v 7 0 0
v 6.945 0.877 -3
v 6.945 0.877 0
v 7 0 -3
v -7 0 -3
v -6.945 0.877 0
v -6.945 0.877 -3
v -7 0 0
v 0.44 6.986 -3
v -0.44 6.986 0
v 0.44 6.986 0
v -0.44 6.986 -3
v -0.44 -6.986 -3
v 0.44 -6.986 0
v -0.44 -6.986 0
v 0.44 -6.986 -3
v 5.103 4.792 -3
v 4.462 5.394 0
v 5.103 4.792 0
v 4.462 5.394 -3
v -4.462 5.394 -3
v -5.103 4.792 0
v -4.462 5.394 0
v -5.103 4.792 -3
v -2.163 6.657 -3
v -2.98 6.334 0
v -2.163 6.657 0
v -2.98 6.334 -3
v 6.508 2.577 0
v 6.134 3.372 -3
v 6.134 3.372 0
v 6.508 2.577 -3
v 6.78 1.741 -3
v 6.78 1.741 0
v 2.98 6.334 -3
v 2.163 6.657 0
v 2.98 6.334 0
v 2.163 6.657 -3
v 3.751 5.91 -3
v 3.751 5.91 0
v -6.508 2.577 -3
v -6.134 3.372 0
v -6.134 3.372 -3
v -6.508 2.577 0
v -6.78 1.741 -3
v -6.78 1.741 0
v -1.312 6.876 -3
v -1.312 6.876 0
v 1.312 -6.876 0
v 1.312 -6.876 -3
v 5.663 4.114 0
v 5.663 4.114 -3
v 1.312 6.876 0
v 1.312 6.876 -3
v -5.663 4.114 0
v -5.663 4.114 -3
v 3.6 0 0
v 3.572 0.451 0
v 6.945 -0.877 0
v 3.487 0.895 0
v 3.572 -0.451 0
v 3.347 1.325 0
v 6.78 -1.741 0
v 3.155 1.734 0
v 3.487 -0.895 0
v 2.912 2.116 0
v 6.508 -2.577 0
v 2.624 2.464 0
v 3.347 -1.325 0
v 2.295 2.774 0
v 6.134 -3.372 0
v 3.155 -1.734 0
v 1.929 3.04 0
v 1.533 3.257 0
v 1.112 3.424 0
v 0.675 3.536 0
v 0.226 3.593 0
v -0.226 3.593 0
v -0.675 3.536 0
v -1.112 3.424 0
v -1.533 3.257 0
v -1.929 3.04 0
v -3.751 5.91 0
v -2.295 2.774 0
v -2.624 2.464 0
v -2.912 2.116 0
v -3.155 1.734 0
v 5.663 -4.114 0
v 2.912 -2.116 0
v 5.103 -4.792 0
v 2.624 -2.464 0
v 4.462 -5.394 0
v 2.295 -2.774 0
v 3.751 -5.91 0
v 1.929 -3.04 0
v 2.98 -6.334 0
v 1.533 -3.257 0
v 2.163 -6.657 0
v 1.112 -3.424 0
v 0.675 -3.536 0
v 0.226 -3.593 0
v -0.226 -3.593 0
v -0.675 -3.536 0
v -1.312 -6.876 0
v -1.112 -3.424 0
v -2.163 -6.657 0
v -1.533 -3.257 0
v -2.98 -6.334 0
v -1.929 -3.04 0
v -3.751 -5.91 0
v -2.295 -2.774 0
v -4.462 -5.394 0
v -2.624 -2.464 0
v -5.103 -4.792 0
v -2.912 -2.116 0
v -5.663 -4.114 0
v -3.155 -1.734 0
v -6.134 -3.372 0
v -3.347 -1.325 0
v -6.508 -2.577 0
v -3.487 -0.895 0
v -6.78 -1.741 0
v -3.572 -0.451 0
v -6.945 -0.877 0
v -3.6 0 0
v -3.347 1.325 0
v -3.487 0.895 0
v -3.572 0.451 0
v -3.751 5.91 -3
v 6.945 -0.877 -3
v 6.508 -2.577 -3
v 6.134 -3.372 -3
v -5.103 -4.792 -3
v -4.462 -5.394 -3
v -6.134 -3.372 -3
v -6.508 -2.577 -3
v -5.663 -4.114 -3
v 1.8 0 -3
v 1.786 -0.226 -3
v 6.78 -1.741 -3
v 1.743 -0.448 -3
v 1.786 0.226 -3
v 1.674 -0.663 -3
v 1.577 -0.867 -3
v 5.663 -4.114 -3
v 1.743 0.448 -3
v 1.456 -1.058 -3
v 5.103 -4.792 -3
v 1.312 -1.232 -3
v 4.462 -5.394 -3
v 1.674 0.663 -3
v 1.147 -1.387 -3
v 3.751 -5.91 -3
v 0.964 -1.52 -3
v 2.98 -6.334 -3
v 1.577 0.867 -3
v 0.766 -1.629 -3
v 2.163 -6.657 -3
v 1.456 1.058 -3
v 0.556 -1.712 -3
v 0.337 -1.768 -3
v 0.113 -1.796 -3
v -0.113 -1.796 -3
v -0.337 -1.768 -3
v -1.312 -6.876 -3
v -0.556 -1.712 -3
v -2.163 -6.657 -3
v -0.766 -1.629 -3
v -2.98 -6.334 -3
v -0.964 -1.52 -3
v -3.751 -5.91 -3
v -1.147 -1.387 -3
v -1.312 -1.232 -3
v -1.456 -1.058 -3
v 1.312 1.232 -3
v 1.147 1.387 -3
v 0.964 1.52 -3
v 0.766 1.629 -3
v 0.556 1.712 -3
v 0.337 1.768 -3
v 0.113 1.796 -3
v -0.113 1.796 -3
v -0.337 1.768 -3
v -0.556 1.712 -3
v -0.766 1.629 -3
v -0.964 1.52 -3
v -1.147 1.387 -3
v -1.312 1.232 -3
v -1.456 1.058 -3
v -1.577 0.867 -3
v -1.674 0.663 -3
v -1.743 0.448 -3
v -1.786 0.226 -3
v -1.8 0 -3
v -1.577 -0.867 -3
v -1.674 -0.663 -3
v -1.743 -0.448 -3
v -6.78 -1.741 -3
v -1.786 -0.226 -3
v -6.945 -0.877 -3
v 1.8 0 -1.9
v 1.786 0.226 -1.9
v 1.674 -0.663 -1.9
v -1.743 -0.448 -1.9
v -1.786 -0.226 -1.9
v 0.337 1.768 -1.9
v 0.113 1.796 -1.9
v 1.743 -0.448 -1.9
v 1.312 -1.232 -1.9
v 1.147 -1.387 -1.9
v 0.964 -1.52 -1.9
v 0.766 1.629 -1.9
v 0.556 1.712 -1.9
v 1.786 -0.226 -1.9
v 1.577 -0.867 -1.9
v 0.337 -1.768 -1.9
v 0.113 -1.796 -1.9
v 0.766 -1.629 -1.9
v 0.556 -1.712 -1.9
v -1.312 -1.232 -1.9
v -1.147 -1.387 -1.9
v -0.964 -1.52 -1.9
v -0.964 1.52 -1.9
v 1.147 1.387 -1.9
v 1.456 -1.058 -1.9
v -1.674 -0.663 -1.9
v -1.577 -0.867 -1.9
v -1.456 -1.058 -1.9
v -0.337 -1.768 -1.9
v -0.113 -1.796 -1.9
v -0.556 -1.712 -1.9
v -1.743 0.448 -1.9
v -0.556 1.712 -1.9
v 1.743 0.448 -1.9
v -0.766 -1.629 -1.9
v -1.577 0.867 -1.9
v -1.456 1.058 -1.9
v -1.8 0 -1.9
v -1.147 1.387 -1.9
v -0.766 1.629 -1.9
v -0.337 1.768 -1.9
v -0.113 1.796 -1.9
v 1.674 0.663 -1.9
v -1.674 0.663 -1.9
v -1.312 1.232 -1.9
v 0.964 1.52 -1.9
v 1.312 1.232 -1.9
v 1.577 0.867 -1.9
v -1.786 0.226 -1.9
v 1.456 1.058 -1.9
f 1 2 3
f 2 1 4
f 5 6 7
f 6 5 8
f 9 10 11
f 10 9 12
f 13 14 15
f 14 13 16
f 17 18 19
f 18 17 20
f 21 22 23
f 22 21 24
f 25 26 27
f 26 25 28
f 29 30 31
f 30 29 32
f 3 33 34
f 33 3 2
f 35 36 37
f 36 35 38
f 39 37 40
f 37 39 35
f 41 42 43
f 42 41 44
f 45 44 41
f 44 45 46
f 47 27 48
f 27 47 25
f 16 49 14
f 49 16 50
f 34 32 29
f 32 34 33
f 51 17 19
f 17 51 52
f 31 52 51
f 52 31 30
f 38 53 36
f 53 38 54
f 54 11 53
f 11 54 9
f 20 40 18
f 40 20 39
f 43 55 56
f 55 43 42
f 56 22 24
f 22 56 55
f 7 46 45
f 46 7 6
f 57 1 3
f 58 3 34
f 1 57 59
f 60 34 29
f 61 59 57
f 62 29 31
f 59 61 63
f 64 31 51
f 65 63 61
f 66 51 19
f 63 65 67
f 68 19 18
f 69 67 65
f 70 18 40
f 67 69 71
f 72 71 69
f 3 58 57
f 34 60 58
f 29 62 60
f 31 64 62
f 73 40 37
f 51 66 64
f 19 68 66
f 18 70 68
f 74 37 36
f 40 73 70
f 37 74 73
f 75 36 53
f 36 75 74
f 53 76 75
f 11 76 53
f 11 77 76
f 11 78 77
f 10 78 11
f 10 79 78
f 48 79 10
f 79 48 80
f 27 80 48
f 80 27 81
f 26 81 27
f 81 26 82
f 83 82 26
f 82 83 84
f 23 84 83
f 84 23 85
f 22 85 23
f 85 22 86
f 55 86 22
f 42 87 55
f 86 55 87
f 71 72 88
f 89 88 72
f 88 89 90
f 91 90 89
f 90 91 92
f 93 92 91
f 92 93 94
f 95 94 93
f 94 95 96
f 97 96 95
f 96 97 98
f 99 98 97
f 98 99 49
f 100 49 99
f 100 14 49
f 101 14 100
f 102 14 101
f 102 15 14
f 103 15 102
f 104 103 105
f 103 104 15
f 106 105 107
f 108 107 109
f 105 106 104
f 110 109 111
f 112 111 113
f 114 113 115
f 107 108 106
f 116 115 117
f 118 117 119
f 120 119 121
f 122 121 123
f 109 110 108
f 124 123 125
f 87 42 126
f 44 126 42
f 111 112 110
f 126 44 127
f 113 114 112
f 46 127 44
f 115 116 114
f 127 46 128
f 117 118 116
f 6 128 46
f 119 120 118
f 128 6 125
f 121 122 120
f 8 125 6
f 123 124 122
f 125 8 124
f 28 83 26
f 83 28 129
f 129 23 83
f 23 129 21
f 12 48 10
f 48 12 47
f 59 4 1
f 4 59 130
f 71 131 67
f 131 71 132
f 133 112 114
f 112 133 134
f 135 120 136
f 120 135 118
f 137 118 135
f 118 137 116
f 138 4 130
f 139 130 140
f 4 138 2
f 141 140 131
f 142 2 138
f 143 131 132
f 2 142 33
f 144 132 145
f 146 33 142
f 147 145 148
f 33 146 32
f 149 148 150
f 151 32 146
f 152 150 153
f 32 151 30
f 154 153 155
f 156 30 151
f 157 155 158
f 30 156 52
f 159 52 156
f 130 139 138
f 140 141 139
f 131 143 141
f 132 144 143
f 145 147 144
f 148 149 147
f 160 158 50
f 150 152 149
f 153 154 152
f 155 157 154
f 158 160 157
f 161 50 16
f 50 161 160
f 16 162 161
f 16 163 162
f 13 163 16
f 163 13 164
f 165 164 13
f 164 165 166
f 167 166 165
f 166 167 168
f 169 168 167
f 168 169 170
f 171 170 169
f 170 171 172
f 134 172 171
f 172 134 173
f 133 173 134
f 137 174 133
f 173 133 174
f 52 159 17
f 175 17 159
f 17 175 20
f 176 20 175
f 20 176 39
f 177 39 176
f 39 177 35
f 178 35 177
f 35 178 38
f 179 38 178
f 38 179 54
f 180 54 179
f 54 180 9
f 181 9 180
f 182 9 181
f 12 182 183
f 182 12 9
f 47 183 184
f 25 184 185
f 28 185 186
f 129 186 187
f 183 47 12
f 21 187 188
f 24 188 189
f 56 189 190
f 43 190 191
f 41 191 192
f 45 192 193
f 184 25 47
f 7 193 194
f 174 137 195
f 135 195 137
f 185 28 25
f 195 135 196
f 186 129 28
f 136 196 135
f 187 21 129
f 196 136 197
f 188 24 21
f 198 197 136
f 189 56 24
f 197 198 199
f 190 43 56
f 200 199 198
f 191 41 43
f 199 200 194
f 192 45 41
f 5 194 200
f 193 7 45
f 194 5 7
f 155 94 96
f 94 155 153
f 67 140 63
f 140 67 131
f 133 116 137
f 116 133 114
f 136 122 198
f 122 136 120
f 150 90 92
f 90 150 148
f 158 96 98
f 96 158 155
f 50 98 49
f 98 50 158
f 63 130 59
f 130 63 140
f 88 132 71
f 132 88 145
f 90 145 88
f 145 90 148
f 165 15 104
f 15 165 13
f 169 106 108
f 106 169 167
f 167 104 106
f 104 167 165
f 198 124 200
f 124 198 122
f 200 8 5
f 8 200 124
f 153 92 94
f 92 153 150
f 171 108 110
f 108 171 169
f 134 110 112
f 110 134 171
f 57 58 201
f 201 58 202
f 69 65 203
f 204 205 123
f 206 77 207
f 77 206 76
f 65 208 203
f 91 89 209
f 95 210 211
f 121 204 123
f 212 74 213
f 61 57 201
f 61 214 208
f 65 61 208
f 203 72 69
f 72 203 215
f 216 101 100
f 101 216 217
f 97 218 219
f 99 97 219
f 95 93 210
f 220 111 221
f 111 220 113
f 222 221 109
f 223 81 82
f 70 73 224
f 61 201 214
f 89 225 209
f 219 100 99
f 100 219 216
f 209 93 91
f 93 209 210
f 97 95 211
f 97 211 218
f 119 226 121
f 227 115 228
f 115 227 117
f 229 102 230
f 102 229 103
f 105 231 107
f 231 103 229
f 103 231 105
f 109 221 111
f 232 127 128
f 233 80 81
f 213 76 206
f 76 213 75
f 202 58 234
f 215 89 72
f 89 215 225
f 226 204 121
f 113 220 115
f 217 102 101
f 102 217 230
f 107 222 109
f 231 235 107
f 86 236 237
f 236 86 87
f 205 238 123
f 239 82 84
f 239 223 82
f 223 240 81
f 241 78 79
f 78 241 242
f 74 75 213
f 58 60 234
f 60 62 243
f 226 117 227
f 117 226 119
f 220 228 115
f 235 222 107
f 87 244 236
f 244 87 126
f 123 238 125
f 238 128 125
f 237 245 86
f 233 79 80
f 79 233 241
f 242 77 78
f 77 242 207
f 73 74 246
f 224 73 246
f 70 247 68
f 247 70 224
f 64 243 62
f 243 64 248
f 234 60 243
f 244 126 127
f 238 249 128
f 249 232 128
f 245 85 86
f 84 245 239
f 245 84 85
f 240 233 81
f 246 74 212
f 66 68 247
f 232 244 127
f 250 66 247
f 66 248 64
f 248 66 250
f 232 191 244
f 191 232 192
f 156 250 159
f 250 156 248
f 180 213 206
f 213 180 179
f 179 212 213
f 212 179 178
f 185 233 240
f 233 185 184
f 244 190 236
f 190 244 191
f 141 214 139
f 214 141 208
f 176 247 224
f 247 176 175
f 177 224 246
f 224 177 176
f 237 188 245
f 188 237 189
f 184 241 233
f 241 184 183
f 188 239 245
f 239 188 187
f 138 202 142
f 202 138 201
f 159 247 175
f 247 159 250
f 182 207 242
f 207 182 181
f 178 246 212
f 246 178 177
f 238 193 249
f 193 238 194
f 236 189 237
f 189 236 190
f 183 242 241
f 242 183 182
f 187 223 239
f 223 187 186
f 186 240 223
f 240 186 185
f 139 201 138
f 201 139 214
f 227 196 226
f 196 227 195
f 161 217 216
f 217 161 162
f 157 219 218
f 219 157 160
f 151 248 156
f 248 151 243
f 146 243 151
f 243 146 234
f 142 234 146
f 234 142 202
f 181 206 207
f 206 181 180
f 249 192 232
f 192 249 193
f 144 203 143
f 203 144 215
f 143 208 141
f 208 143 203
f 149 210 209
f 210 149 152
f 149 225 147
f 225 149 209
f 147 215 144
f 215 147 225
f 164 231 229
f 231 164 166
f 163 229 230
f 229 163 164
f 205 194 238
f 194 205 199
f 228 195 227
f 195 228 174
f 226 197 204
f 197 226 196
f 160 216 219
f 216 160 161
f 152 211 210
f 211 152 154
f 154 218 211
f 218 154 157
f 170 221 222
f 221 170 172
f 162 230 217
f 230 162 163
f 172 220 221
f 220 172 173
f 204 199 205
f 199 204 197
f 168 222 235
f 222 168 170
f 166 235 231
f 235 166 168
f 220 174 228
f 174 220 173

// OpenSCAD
$fn = 50;


difference() {
	union() {
		translate(v = [0, 0, -3.0000000000]) {
			cylinder(h = 3, r = 7.0000000000);
		}
		translate(v = [0, 0, -3.0000000000]) {
			cylinder(h = 3, r = 2.8750000000);
		}
	}
	union() {
		translate(v = [0, 0, 0]) {
			rotate(a = [0, 0, 0]) {
				difference() {
					union() {
						translate(v = [0, 0, -3.0000000000]) {
							cylinder(h = 3, r = 1.5000000000);
						}
						translate(v = [0, 0, -1.9000000000]) {
							cylinder(h = 1.9000000000, r1 = 1.8000000000, r2 = 3.6000000000);
						}
						translate(v = [0, 0, -3.0000000000]) {
							cylinder(h = 3, r = 1.8000000000);
						}
						translate(v = [0, 0, -3.0000000000]) {
							cylinder(h = 3, r = 1.5000000000);
						}
					}
					union();
				}
			}
		}
	}
}
